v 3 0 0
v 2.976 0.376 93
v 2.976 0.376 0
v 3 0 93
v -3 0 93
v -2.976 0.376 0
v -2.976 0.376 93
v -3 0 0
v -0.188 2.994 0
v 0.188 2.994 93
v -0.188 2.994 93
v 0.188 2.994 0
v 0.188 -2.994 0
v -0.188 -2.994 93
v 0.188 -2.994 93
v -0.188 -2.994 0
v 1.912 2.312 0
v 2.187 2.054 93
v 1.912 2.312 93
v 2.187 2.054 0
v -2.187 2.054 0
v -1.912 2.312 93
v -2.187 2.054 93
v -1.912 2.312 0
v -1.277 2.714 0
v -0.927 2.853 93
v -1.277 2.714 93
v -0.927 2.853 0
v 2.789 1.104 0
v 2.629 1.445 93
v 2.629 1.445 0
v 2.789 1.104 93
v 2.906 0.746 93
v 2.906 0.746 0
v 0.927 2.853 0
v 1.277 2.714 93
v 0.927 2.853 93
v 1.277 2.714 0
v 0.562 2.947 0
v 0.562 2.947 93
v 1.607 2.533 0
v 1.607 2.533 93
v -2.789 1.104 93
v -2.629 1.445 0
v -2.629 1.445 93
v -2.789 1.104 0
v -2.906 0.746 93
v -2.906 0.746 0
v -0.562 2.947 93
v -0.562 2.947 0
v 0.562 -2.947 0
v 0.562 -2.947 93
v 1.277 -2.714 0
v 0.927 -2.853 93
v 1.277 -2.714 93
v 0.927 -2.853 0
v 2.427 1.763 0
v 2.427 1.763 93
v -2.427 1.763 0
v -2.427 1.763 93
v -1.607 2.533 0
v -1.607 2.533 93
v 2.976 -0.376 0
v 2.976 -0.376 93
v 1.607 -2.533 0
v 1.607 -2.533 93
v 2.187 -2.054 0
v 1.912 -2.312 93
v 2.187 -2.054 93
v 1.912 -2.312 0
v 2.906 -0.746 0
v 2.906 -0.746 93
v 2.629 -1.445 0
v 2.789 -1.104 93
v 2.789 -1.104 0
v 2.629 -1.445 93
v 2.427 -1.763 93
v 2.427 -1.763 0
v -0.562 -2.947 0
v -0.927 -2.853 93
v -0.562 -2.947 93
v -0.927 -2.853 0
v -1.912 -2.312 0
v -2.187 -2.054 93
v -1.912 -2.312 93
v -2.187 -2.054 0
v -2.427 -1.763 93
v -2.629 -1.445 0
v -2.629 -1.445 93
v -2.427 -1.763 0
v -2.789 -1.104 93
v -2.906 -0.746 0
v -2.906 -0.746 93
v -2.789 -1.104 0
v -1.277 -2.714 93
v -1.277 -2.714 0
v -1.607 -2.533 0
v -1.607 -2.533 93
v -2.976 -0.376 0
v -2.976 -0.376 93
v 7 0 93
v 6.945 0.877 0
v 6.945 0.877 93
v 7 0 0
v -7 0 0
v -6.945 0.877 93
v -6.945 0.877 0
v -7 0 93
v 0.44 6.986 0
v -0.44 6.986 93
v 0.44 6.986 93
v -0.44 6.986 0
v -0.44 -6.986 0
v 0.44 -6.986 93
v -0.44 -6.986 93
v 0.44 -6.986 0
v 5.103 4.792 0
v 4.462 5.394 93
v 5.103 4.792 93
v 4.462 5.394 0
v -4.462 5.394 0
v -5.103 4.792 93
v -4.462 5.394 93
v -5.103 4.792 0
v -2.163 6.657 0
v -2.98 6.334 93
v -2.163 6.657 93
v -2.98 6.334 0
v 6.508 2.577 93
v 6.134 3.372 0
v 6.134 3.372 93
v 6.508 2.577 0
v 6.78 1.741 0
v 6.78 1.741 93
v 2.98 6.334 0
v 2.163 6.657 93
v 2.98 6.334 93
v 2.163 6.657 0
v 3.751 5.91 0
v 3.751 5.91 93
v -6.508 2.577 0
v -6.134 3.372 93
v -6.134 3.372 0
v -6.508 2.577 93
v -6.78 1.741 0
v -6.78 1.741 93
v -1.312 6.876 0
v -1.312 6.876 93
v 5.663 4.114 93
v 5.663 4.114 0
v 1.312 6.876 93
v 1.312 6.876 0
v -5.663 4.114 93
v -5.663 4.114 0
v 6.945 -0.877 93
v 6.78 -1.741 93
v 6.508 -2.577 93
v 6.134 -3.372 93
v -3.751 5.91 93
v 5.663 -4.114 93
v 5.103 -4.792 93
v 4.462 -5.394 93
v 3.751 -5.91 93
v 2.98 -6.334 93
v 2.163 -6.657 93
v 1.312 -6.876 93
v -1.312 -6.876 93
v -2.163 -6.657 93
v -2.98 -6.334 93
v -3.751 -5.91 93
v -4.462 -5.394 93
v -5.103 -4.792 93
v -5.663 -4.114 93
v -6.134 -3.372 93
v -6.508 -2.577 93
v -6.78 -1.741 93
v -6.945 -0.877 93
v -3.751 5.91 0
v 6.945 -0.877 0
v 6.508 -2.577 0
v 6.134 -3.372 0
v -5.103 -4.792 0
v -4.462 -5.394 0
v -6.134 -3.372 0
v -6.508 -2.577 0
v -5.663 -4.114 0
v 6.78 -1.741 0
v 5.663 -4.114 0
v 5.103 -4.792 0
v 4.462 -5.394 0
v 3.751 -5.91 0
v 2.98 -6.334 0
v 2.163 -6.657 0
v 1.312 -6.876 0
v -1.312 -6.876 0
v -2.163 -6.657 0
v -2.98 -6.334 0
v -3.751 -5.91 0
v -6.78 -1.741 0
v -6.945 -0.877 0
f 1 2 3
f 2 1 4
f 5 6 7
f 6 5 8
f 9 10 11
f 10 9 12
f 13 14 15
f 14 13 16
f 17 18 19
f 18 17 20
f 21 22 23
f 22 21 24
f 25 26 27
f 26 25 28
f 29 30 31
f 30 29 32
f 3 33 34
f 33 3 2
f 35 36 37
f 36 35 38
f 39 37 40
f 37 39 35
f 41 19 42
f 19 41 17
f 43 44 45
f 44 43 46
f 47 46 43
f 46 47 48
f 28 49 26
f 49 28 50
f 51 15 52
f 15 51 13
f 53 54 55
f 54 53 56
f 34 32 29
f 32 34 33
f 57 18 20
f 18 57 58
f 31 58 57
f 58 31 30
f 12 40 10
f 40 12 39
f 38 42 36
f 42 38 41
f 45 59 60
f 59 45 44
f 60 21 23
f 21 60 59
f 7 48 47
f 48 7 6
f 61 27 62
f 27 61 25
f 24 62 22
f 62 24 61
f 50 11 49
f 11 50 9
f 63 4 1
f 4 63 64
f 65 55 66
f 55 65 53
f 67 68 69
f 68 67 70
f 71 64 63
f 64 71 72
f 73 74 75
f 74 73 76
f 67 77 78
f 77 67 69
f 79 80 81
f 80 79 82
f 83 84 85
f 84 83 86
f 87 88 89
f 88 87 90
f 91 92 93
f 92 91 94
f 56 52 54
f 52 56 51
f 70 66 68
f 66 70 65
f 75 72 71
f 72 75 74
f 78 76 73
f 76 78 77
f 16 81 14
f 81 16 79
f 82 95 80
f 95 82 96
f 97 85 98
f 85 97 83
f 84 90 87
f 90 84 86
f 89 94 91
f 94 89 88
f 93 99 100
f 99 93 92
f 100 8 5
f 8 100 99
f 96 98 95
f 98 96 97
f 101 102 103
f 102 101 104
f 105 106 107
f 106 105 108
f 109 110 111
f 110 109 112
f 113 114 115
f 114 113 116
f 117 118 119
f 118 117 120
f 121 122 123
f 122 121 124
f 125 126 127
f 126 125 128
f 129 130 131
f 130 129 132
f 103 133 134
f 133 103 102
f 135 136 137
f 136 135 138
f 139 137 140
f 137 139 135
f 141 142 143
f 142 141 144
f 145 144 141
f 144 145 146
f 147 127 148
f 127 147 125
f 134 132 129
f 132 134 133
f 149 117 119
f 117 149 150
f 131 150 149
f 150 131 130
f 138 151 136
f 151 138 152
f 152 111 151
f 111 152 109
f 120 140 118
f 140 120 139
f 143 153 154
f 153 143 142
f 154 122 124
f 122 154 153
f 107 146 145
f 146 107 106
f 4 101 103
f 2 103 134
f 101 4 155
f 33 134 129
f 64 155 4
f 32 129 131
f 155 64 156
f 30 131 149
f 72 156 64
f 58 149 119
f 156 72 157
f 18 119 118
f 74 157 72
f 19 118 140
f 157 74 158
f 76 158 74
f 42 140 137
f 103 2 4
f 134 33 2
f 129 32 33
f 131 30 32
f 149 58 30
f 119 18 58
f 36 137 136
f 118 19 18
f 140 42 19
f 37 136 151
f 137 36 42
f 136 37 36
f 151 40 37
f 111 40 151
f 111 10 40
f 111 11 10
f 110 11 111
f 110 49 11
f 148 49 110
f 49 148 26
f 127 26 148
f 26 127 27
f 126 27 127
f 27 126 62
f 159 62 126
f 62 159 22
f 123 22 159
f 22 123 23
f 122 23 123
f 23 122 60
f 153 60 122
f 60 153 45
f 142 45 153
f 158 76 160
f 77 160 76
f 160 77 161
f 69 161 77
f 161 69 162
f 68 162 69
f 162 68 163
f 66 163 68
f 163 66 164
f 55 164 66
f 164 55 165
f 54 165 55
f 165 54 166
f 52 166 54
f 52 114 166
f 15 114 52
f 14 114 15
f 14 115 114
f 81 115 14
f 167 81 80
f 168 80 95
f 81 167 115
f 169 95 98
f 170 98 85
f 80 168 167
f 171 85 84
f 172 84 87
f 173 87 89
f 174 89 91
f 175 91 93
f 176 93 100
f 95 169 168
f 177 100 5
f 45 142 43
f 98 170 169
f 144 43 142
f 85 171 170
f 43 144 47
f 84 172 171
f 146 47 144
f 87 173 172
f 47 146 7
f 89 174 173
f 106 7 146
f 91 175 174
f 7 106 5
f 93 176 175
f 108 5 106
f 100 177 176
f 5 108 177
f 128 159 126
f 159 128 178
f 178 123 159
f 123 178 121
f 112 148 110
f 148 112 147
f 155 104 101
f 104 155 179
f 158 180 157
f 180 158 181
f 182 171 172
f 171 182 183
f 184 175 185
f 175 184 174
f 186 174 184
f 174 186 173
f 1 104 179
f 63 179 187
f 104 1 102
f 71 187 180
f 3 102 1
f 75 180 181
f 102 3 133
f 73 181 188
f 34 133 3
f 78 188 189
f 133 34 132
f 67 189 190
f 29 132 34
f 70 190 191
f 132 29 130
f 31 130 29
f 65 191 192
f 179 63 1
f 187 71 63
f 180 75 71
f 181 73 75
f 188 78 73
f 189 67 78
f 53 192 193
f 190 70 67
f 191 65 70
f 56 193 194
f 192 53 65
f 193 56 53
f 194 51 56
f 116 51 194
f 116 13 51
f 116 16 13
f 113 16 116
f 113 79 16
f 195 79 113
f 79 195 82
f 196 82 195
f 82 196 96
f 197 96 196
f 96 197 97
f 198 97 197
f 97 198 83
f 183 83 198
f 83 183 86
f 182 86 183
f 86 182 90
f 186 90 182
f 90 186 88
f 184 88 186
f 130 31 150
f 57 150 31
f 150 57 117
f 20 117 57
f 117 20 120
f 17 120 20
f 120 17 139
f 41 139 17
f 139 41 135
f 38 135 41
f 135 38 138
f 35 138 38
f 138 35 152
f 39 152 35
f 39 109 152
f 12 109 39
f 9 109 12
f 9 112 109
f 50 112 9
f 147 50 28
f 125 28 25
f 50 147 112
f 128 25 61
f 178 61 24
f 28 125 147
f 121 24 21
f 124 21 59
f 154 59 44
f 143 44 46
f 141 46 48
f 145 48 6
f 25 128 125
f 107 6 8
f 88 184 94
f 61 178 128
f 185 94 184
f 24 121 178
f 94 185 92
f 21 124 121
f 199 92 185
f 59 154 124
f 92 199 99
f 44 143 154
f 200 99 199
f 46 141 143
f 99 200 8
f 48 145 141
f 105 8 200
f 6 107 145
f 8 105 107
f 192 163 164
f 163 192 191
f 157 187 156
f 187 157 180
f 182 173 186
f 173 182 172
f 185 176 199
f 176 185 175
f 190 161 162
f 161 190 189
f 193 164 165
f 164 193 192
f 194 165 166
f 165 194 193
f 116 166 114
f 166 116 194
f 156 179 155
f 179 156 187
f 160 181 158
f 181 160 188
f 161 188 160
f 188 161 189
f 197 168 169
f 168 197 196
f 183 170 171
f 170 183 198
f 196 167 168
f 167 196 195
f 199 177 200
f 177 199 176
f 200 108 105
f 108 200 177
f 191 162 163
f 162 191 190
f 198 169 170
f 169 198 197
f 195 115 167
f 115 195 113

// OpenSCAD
$fn = 50;


difference() {
	union() {
		cylinder(h = 93, r = 7.0000000000);
	}
	union() {
		translate(v = [0, 0, -100]) {
			cylinder(h = 200, r = 3.0000000000);
		}
		translate(v = [0, 0, -100]) {
			cylinder(h = 200, r = 1.5000000000);
		}
	}
}
